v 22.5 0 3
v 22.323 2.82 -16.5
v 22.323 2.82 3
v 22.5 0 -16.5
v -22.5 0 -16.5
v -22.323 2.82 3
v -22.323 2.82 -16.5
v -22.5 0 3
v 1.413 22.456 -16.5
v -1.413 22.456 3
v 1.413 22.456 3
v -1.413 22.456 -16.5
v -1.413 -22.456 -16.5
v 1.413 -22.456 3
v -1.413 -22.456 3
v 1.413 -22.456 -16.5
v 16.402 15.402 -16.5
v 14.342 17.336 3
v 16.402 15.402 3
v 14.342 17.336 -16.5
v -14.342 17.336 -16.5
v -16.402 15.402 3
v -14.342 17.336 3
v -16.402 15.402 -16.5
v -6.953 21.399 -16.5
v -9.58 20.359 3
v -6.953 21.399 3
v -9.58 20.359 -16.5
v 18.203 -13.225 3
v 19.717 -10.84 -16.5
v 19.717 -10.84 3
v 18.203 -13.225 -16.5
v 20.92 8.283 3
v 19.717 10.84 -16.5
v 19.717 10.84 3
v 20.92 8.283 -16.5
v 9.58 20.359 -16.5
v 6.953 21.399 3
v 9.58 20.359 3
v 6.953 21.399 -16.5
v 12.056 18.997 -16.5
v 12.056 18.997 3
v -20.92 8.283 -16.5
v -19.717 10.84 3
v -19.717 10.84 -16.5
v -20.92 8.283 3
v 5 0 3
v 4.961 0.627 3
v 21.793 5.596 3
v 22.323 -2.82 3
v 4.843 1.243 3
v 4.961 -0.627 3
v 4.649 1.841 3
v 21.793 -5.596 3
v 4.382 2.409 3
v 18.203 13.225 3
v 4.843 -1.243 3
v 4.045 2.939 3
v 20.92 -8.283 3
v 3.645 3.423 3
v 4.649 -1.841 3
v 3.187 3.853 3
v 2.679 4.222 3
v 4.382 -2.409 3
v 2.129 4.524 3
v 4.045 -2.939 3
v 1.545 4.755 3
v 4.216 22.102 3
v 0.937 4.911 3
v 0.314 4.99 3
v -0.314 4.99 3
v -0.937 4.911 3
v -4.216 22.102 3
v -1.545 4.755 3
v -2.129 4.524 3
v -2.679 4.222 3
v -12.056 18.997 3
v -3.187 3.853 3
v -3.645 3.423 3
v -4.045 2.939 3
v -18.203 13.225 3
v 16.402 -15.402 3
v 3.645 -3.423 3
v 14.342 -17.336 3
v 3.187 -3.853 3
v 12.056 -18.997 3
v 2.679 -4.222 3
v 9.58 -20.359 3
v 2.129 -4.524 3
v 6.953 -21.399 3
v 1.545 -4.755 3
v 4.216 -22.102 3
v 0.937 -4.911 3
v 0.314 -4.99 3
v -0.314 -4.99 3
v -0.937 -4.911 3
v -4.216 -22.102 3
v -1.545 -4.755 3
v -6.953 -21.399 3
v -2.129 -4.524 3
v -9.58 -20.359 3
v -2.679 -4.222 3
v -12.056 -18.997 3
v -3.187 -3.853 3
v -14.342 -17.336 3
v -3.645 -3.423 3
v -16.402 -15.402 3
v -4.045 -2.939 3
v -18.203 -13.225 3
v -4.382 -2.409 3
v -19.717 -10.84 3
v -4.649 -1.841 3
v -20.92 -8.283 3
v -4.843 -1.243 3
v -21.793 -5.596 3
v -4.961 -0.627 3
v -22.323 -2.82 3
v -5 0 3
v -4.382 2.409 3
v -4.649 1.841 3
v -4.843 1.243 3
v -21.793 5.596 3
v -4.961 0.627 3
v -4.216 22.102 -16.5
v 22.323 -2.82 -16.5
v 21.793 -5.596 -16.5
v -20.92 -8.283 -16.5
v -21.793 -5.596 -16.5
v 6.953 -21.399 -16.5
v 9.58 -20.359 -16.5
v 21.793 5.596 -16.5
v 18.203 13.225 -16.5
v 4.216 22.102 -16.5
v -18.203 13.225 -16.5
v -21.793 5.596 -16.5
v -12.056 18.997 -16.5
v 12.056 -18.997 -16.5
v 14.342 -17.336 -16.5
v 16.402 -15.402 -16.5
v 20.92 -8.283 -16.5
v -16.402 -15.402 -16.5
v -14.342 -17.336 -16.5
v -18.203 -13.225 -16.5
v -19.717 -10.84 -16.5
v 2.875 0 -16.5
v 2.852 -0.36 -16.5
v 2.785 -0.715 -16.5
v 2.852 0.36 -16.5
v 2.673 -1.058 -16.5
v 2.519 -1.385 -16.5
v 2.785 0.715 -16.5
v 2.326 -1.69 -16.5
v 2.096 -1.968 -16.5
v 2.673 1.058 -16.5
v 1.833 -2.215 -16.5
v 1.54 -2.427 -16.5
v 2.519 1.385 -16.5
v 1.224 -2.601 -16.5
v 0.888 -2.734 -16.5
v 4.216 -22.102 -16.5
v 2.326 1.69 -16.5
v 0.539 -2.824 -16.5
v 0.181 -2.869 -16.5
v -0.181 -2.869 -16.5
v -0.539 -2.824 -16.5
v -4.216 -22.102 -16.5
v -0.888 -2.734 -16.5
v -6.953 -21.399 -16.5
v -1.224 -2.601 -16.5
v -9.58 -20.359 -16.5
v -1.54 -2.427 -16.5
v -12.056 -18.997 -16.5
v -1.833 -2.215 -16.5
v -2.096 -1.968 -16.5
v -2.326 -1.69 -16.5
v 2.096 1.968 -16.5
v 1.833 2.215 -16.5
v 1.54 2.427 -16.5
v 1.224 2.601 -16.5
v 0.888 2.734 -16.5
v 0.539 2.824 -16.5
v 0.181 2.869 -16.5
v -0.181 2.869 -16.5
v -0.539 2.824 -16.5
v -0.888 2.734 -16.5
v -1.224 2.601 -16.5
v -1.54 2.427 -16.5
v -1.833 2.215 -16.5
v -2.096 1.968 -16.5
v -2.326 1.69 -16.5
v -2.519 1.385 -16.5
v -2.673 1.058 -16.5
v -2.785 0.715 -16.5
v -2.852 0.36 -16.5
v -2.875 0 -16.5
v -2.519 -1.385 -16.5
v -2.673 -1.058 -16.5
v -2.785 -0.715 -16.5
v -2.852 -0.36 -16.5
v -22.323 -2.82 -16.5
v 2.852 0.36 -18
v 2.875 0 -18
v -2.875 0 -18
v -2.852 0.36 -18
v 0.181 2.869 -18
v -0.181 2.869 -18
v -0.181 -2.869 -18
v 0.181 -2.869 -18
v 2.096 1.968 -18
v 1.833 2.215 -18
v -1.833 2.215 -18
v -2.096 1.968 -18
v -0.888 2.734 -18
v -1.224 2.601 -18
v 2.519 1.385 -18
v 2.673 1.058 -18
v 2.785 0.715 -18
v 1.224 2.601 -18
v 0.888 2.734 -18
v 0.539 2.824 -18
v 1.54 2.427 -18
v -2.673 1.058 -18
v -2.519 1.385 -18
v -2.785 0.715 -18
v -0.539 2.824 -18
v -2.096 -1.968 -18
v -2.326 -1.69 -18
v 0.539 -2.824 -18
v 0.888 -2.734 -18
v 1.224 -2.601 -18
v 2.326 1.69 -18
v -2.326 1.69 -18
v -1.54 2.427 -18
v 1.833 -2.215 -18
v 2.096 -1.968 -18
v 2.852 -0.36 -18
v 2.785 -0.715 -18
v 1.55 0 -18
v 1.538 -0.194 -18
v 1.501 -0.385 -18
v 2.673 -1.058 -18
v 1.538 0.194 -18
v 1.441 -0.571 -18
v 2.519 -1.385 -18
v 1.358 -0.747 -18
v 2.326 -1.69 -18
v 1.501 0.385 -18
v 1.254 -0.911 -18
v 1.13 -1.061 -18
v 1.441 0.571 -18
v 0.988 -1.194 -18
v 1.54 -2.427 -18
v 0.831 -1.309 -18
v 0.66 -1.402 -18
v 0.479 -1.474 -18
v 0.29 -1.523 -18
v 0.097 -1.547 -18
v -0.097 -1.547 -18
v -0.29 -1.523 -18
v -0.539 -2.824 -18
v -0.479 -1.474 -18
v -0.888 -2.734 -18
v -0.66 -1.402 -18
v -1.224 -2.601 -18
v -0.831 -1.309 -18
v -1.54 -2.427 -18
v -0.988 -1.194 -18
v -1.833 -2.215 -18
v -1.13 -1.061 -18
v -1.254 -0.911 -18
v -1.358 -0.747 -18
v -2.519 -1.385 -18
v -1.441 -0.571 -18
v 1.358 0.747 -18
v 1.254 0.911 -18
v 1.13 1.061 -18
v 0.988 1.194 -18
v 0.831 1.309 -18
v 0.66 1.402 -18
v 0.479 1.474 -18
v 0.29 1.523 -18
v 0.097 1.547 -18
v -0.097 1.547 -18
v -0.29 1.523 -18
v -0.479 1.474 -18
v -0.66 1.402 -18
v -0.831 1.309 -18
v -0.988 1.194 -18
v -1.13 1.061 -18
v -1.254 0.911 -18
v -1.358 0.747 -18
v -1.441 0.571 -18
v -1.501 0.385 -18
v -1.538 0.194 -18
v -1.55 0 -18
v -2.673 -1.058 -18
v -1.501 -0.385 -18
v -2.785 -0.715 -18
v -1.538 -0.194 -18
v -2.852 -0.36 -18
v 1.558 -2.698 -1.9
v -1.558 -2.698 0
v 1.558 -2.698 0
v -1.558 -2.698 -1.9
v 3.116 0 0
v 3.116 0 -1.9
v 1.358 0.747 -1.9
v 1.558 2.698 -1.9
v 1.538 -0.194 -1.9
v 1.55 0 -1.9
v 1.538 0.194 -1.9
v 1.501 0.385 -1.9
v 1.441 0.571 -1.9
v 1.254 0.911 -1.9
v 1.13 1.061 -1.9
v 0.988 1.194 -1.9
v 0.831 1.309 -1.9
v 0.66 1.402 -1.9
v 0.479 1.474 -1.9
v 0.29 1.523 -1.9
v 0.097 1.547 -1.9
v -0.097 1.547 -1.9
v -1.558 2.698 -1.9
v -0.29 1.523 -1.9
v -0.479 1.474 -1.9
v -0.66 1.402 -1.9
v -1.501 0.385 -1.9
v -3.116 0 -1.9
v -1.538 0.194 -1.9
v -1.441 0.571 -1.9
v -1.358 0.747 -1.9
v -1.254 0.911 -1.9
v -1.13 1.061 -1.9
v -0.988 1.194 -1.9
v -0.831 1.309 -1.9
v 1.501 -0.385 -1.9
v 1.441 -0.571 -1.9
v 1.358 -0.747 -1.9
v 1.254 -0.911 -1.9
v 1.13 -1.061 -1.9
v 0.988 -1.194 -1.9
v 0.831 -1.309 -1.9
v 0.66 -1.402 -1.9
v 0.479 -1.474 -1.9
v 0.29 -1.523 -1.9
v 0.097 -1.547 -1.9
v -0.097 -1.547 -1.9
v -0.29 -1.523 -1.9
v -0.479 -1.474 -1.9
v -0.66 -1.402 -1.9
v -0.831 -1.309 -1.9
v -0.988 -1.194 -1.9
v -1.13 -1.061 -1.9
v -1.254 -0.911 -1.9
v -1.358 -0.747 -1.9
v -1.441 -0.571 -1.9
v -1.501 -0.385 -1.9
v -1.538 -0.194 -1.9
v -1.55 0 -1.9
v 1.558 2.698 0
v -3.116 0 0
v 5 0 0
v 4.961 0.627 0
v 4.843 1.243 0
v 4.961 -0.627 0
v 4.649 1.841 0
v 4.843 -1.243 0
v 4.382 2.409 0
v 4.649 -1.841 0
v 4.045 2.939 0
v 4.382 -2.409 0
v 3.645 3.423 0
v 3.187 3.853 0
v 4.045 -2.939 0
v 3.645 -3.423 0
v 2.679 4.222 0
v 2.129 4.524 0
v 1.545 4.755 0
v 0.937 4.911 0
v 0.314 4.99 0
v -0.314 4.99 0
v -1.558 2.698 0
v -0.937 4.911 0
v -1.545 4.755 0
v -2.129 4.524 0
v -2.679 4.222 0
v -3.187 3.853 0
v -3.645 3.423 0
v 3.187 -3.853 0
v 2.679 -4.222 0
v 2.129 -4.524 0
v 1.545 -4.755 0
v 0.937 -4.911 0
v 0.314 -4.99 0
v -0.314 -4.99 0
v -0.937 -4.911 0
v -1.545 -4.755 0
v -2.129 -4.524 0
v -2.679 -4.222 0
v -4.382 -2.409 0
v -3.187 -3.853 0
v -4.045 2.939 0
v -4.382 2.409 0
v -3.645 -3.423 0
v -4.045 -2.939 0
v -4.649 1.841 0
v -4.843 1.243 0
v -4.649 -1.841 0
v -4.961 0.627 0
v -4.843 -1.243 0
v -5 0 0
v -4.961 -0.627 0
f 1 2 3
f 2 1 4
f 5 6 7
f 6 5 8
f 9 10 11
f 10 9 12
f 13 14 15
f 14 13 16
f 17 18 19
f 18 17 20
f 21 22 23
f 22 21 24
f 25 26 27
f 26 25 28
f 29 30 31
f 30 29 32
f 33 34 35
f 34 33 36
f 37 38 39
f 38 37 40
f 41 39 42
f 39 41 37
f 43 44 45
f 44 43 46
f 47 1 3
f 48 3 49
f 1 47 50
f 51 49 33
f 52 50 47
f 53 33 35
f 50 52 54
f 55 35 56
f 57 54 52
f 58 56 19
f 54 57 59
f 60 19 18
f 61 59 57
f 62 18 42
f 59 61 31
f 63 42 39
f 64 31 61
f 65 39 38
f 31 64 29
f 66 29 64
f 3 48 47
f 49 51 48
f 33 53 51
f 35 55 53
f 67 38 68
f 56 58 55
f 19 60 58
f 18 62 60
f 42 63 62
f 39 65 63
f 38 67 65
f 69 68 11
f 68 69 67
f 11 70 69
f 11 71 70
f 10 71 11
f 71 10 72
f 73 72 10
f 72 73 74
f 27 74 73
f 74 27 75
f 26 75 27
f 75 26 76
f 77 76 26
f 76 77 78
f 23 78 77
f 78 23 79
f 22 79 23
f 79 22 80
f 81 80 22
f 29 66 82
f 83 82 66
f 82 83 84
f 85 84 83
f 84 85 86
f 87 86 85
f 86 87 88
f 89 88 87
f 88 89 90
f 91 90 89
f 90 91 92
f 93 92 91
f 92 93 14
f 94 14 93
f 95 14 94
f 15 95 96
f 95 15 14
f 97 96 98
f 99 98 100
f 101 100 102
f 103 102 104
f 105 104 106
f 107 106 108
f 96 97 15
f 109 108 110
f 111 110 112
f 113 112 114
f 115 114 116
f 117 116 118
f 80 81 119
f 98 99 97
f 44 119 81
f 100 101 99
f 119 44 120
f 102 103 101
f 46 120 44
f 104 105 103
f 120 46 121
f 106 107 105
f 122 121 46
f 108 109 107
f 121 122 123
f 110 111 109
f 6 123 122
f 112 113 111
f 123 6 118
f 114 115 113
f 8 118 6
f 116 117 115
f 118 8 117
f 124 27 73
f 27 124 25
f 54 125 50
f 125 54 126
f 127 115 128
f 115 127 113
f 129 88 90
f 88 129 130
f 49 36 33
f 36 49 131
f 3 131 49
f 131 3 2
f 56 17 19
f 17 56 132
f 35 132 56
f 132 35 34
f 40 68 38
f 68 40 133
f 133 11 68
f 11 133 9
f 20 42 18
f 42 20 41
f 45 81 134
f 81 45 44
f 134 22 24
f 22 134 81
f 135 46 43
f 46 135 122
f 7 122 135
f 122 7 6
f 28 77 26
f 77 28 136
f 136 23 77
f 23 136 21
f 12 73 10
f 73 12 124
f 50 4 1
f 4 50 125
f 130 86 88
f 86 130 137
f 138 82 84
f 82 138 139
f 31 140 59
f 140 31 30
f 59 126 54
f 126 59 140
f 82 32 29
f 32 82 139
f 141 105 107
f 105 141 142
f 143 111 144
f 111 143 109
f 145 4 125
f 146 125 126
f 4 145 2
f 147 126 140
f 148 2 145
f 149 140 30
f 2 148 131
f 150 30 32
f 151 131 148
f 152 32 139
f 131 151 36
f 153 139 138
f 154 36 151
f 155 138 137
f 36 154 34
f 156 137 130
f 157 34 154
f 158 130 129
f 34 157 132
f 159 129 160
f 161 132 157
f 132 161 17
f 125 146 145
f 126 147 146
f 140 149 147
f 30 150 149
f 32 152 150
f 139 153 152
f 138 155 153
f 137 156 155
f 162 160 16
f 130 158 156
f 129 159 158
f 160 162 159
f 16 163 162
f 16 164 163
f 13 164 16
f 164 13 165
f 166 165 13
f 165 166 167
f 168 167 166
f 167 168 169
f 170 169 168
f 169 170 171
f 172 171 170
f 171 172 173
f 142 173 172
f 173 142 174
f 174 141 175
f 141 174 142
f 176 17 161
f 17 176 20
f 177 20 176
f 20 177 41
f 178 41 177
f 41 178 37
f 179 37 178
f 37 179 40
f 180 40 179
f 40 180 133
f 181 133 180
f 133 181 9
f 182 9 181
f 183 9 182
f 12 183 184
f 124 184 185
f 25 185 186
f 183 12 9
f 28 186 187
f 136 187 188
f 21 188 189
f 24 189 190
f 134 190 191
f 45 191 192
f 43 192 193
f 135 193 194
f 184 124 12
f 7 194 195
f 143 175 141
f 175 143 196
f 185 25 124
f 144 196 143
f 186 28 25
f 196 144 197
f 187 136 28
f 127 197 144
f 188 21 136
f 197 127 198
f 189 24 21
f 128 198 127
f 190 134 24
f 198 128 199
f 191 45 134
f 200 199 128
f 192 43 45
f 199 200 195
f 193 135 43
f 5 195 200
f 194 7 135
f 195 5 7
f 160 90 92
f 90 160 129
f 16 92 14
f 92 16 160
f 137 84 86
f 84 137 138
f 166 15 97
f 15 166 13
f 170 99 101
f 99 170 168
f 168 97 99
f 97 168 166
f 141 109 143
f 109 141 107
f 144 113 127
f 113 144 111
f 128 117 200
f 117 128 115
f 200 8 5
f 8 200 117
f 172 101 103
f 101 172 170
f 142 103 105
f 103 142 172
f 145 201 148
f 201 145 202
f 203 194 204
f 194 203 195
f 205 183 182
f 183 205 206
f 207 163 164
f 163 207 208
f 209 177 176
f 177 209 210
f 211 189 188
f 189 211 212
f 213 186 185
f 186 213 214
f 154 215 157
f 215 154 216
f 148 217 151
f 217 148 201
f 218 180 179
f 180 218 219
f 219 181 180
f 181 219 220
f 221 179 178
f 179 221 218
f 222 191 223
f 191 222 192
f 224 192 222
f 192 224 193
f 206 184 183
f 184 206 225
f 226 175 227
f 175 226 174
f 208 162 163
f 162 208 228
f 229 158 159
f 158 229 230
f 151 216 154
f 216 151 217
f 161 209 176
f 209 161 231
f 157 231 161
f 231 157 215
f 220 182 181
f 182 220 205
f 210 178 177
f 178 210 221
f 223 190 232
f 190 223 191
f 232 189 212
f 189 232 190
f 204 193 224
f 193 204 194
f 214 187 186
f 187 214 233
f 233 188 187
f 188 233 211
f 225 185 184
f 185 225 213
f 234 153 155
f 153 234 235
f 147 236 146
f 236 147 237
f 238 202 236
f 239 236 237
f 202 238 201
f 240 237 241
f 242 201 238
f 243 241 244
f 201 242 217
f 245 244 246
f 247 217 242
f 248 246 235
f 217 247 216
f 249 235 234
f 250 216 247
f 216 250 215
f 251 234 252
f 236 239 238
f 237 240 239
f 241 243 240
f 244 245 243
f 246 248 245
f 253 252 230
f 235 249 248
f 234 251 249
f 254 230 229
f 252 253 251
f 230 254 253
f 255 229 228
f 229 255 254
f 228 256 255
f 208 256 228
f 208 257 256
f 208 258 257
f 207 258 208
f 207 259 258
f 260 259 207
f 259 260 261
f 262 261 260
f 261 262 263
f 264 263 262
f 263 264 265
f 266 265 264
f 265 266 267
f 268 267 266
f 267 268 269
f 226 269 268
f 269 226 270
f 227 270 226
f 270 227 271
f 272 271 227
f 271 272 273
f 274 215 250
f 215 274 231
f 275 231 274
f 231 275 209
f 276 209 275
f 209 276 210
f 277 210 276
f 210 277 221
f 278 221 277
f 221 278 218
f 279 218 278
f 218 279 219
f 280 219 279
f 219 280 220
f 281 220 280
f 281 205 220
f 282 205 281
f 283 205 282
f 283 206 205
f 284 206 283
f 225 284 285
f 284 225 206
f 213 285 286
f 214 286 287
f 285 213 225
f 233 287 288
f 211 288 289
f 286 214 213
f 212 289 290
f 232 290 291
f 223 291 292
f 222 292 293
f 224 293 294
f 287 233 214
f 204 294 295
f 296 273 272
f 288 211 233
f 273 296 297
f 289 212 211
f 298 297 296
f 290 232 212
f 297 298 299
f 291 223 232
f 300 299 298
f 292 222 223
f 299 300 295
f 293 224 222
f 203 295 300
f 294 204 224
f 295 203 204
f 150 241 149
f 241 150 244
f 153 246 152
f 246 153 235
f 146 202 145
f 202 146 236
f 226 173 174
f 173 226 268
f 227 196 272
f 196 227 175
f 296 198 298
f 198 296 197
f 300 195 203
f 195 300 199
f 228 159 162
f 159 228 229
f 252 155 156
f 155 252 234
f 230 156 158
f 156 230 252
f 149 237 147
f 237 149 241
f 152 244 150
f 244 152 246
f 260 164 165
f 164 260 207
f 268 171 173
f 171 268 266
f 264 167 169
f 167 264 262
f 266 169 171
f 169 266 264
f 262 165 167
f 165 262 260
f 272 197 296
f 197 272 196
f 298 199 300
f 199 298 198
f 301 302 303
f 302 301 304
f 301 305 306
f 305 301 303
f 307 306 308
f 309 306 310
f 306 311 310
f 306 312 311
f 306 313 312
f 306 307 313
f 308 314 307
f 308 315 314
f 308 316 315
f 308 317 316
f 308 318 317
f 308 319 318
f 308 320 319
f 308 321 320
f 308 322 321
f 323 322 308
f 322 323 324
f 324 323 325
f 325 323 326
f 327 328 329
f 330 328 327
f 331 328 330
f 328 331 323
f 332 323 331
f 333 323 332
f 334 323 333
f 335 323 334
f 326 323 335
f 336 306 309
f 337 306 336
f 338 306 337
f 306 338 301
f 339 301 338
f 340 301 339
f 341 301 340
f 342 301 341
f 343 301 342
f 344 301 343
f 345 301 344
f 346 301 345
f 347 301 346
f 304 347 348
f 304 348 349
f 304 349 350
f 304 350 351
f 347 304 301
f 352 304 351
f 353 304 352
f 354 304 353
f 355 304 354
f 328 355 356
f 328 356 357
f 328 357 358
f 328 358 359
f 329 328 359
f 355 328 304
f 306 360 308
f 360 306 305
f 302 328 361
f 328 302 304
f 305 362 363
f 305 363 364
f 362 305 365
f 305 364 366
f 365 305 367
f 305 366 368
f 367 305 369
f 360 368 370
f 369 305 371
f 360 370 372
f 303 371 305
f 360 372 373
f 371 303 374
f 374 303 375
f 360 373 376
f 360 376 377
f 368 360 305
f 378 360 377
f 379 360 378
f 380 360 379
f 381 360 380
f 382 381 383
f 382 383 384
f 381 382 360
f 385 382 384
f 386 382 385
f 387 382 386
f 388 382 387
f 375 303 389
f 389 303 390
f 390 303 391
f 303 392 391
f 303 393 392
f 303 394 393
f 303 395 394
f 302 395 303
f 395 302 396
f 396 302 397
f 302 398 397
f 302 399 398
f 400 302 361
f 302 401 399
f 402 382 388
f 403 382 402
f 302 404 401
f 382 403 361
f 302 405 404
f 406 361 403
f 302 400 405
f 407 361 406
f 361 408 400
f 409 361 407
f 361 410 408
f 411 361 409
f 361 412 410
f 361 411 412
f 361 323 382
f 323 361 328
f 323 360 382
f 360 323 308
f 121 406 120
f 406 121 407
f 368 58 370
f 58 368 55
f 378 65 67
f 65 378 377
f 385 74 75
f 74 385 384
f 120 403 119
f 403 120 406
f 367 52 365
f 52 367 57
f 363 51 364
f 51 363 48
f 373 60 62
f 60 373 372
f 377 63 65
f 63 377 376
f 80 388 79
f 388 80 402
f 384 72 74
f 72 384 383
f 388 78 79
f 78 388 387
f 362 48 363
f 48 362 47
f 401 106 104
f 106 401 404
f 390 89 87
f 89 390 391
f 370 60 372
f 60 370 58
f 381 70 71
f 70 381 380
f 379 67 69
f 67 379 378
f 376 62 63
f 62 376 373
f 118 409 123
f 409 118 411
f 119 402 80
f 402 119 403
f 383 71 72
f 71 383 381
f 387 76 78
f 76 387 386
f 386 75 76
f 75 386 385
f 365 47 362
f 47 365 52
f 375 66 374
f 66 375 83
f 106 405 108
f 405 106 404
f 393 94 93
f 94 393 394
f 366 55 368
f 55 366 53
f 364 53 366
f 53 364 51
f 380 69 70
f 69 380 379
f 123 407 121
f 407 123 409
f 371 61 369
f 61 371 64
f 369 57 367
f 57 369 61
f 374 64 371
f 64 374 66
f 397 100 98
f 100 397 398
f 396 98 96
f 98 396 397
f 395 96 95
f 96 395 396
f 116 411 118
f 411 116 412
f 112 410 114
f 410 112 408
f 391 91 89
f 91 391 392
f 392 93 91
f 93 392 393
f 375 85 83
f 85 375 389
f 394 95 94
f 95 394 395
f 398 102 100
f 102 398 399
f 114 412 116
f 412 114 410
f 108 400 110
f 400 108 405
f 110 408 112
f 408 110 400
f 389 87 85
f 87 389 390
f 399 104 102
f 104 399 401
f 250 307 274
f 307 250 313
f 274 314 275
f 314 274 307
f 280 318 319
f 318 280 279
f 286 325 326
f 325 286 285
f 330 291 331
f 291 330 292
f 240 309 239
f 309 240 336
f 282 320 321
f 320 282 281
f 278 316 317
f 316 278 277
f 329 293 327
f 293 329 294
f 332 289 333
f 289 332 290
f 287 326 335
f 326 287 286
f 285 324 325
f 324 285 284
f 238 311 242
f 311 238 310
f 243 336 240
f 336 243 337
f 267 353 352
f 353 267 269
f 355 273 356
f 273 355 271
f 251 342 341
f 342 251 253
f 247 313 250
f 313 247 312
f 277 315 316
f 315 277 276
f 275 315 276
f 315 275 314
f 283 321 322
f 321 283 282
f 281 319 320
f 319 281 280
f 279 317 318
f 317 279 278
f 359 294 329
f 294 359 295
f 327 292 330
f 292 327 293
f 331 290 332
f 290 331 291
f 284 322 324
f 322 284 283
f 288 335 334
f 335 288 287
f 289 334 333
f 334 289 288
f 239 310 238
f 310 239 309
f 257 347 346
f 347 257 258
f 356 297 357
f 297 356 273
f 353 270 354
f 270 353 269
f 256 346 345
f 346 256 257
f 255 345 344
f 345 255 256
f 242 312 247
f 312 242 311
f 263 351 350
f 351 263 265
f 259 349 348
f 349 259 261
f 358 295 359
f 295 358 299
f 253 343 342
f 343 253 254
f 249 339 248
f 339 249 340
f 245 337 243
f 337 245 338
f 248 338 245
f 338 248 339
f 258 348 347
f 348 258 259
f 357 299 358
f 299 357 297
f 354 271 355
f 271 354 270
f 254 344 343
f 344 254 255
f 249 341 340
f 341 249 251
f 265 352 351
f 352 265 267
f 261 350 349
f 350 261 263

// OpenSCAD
$fn = 50;

difference() {
	union() {
		translate(v = [0, 0, -16.5]) {
			cylinder(h = 19.5, r = 22.5);
		}
		#translate(v = [0, 0, -18.0]) {
			cylinder(h = 18, r = 2.875);
		}
	}
	union() {
		translate(v = [0, 0, 0]) {
			rotate(a = [0, 0, 0]) {
				difference() {
					union() {
						translate(v = [0, 0, -1.9]) {
							linear_extrude(height = 1.9) {
								polygon(points = [[3.1158, 0.0], [1.5579000000000005, 2.698361953111554], [-1.5578999999999994, 2.6983619531115544], [-3.1158, 3.815754496783323e-16], [-1.5579000000000014, -2.6983619531115535], [1.557899999999998, -2.6983619531115552]]);
							}
						}
					}
					union();
				}
			}
		}
		#cylinder(h = 3, r = 5.0);
		#translate(v = [0, 0, -100.0]) {
			cylinder(h = 200, r = 1.55);
		}
	}
}
